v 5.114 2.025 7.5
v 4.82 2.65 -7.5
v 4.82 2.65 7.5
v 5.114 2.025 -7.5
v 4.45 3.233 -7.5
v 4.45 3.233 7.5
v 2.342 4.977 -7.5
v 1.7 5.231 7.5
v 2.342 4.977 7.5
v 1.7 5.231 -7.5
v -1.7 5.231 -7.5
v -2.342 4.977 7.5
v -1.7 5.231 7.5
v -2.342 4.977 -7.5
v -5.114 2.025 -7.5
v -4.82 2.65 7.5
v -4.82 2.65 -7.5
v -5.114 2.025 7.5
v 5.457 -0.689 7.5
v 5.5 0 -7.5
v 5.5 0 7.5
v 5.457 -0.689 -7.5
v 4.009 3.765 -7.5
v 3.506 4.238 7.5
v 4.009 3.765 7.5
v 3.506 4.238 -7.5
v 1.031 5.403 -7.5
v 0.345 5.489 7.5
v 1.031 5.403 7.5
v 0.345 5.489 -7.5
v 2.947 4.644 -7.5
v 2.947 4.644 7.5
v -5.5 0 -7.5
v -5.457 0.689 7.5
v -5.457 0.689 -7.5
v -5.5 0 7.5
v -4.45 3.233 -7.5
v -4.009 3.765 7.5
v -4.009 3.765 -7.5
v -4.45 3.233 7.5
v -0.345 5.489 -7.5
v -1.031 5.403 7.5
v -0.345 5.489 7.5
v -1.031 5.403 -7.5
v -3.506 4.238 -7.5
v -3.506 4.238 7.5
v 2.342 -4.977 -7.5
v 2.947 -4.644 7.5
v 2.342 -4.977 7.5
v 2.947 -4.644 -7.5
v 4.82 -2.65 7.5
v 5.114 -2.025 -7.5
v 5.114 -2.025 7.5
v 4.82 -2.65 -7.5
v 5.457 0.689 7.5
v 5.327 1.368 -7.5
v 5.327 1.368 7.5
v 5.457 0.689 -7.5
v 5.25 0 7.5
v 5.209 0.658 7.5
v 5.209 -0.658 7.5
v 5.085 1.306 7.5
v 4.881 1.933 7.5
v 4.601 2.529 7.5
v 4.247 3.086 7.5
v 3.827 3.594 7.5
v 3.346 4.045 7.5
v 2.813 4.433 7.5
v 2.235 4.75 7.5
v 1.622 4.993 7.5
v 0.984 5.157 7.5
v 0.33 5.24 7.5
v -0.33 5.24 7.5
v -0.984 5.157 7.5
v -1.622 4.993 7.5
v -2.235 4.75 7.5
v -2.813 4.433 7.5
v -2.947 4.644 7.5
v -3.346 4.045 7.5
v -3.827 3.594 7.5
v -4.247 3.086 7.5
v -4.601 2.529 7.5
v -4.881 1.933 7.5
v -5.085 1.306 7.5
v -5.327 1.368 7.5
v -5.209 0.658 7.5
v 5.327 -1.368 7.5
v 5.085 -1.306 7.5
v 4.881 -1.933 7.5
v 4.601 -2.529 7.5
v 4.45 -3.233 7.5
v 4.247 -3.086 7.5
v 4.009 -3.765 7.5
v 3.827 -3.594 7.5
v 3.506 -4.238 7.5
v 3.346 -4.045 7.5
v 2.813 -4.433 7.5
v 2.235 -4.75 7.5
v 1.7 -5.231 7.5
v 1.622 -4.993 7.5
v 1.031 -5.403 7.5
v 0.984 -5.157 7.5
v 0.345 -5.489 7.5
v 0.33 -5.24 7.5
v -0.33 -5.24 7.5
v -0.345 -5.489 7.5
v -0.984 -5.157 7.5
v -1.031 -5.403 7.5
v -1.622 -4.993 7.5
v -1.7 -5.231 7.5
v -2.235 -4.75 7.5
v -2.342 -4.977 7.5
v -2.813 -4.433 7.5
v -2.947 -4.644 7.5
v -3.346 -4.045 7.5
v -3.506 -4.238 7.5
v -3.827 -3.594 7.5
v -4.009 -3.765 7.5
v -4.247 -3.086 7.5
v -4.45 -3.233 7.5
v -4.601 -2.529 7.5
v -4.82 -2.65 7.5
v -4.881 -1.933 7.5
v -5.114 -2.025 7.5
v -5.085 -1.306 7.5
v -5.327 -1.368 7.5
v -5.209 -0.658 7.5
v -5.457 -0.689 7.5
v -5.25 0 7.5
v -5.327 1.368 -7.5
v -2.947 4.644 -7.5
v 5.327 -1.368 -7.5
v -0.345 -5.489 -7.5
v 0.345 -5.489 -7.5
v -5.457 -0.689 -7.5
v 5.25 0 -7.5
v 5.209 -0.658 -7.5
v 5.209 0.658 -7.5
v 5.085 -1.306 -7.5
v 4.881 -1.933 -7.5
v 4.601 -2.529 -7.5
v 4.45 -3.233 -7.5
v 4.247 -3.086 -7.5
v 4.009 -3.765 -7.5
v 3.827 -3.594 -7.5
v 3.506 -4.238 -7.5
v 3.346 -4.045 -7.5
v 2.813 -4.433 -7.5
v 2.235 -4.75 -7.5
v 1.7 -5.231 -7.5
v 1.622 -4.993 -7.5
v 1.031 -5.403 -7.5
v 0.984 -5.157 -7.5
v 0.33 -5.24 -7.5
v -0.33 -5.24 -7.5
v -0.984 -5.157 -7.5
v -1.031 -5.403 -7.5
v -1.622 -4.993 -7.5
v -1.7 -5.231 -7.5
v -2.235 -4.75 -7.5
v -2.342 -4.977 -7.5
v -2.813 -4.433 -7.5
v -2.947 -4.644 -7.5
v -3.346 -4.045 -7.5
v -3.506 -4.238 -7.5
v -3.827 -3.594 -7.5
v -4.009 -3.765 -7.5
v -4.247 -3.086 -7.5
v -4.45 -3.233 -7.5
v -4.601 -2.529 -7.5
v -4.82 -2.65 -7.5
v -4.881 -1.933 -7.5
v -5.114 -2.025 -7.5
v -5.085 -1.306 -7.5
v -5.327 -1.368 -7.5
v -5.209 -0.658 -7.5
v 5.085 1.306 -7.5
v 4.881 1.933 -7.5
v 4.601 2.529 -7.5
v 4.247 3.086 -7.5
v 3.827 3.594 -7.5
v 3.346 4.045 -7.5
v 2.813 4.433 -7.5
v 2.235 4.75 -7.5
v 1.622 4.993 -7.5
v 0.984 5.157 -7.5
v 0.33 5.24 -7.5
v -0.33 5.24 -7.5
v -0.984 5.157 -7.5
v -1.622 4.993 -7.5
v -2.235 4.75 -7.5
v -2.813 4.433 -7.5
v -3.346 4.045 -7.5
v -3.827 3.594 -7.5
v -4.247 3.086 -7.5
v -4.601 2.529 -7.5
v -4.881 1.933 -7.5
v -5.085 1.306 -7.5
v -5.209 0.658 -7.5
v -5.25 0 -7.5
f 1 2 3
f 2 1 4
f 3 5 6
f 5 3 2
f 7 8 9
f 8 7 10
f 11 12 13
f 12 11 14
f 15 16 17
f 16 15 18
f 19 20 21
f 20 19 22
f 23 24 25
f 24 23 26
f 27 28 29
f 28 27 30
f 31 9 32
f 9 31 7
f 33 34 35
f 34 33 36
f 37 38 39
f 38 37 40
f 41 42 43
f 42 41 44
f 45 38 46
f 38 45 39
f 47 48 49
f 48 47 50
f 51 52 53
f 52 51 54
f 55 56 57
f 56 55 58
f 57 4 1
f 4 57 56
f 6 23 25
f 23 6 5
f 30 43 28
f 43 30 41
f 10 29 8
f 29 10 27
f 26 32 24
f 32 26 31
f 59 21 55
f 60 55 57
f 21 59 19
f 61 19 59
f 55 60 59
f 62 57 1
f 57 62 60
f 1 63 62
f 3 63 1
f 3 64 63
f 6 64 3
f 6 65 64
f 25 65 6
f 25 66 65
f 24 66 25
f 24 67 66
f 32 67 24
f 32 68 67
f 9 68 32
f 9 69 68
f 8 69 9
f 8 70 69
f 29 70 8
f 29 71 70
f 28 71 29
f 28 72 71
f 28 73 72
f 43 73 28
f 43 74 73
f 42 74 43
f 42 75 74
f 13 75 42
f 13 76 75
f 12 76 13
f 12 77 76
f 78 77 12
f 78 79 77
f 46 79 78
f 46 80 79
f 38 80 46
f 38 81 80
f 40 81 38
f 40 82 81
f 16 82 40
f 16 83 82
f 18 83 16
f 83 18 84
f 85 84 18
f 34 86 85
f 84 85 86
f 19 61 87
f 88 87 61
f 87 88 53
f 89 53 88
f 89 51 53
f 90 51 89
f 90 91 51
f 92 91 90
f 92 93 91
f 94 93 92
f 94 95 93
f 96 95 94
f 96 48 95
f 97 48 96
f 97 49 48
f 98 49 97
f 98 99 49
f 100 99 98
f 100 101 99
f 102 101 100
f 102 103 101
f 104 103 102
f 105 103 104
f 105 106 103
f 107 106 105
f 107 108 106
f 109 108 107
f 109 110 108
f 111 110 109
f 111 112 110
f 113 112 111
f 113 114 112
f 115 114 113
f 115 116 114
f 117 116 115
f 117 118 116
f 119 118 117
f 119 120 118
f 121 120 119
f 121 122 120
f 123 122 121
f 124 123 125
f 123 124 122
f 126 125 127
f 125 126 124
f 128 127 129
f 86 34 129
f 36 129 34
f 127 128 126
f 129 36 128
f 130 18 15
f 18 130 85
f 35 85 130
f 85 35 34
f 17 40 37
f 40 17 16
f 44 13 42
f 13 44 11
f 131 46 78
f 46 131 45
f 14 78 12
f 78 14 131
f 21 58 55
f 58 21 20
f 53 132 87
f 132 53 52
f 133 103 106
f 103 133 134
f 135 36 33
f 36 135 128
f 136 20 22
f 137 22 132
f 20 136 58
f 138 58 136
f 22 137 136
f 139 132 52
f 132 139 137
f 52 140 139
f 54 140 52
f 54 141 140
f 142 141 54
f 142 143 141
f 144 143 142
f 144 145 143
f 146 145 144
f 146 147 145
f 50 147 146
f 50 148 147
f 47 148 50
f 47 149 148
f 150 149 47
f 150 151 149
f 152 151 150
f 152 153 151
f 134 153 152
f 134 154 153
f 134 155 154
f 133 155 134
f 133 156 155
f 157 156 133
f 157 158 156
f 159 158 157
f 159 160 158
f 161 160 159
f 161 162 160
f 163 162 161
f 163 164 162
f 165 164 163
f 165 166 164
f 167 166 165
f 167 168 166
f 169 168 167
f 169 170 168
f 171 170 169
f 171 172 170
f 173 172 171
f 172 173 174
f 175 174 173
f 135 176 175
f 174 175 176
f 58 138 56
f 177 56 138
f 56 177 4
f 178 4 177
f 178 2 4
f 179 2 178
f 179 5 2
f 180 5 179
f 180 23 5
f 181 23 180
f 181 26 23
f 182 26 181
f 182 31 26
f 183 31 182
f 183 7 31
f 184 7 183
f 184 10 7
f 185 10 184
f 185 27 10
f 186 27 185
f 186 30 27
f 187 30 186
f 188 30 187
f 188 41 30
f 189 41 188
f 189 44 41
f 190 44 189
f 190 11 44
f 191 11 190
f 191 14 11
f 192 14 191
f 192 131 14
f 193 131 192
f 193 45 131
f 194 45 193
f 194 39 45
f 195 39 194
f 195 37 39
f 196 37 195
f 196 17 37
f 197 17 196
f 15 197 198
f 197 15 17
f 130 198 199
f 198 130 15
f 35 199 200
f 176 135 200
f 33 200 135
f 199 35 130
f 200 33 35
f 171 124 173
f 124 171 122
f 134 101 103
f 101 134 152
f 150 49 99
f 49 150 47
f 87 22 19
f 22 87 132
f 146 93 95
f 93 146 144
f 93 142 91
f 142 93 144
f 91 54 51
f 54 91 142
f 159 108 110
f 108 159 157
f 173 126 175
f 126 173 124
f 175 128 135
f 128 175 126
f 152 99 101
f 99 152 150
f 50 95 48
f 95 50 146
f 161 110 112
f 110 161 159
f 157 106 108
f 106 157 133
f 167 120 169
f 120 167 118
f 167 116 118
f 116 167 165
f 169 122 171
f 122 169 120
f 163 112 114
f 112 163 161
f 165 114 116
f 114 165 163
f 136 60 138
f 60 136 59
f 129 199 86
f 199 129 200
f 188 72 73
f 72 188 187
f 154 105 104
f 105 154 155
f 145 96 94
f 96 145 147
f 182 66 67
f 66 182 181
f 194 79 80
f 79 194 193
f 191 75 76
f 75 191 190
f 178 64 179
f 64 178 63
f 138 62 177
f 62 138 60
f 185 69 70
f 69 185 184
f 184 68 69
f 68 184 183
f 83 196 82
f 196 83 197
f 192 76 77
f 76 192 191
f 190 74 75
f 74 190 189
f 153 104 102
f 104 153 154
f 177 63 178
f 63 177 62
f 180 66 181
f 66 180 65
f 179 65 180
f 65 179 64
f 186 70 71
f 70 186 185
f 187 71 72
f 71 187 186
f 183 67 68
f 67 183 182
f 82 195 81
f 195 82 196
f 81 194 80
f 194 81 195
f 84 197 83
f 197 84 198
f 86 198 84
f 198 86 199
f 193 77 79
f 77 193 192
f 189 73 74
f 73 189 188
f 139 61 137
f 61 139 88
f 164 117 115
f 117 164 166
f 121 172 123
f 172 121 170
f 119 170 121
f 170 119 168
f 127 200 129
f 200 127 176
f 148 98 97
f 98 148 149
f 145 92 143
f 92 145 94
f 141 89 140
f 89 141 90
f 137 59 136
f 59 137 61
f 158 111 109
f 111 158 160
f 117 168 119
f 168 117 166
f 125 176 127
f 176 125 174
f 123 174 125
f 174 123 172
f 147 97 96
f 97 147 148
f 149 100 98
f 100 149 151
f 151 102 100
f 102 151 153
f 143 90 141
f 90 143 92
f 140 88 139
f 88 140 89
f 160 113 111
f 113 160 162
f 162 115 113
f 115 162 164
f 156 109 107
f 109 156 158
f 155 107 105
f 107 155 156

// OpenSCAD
$fn = 50;


difference() {
	union() {
		translate(v = [0, 0, -7.5000000000]) {
			cylinder(h = 15, r = 5.5000000000);
		}
	}
	union() {
		translate(v = [0, 0, -100.0000000000]) {
			cylinder(h = 200, r = 5.2500000000);
		}
	}
}
